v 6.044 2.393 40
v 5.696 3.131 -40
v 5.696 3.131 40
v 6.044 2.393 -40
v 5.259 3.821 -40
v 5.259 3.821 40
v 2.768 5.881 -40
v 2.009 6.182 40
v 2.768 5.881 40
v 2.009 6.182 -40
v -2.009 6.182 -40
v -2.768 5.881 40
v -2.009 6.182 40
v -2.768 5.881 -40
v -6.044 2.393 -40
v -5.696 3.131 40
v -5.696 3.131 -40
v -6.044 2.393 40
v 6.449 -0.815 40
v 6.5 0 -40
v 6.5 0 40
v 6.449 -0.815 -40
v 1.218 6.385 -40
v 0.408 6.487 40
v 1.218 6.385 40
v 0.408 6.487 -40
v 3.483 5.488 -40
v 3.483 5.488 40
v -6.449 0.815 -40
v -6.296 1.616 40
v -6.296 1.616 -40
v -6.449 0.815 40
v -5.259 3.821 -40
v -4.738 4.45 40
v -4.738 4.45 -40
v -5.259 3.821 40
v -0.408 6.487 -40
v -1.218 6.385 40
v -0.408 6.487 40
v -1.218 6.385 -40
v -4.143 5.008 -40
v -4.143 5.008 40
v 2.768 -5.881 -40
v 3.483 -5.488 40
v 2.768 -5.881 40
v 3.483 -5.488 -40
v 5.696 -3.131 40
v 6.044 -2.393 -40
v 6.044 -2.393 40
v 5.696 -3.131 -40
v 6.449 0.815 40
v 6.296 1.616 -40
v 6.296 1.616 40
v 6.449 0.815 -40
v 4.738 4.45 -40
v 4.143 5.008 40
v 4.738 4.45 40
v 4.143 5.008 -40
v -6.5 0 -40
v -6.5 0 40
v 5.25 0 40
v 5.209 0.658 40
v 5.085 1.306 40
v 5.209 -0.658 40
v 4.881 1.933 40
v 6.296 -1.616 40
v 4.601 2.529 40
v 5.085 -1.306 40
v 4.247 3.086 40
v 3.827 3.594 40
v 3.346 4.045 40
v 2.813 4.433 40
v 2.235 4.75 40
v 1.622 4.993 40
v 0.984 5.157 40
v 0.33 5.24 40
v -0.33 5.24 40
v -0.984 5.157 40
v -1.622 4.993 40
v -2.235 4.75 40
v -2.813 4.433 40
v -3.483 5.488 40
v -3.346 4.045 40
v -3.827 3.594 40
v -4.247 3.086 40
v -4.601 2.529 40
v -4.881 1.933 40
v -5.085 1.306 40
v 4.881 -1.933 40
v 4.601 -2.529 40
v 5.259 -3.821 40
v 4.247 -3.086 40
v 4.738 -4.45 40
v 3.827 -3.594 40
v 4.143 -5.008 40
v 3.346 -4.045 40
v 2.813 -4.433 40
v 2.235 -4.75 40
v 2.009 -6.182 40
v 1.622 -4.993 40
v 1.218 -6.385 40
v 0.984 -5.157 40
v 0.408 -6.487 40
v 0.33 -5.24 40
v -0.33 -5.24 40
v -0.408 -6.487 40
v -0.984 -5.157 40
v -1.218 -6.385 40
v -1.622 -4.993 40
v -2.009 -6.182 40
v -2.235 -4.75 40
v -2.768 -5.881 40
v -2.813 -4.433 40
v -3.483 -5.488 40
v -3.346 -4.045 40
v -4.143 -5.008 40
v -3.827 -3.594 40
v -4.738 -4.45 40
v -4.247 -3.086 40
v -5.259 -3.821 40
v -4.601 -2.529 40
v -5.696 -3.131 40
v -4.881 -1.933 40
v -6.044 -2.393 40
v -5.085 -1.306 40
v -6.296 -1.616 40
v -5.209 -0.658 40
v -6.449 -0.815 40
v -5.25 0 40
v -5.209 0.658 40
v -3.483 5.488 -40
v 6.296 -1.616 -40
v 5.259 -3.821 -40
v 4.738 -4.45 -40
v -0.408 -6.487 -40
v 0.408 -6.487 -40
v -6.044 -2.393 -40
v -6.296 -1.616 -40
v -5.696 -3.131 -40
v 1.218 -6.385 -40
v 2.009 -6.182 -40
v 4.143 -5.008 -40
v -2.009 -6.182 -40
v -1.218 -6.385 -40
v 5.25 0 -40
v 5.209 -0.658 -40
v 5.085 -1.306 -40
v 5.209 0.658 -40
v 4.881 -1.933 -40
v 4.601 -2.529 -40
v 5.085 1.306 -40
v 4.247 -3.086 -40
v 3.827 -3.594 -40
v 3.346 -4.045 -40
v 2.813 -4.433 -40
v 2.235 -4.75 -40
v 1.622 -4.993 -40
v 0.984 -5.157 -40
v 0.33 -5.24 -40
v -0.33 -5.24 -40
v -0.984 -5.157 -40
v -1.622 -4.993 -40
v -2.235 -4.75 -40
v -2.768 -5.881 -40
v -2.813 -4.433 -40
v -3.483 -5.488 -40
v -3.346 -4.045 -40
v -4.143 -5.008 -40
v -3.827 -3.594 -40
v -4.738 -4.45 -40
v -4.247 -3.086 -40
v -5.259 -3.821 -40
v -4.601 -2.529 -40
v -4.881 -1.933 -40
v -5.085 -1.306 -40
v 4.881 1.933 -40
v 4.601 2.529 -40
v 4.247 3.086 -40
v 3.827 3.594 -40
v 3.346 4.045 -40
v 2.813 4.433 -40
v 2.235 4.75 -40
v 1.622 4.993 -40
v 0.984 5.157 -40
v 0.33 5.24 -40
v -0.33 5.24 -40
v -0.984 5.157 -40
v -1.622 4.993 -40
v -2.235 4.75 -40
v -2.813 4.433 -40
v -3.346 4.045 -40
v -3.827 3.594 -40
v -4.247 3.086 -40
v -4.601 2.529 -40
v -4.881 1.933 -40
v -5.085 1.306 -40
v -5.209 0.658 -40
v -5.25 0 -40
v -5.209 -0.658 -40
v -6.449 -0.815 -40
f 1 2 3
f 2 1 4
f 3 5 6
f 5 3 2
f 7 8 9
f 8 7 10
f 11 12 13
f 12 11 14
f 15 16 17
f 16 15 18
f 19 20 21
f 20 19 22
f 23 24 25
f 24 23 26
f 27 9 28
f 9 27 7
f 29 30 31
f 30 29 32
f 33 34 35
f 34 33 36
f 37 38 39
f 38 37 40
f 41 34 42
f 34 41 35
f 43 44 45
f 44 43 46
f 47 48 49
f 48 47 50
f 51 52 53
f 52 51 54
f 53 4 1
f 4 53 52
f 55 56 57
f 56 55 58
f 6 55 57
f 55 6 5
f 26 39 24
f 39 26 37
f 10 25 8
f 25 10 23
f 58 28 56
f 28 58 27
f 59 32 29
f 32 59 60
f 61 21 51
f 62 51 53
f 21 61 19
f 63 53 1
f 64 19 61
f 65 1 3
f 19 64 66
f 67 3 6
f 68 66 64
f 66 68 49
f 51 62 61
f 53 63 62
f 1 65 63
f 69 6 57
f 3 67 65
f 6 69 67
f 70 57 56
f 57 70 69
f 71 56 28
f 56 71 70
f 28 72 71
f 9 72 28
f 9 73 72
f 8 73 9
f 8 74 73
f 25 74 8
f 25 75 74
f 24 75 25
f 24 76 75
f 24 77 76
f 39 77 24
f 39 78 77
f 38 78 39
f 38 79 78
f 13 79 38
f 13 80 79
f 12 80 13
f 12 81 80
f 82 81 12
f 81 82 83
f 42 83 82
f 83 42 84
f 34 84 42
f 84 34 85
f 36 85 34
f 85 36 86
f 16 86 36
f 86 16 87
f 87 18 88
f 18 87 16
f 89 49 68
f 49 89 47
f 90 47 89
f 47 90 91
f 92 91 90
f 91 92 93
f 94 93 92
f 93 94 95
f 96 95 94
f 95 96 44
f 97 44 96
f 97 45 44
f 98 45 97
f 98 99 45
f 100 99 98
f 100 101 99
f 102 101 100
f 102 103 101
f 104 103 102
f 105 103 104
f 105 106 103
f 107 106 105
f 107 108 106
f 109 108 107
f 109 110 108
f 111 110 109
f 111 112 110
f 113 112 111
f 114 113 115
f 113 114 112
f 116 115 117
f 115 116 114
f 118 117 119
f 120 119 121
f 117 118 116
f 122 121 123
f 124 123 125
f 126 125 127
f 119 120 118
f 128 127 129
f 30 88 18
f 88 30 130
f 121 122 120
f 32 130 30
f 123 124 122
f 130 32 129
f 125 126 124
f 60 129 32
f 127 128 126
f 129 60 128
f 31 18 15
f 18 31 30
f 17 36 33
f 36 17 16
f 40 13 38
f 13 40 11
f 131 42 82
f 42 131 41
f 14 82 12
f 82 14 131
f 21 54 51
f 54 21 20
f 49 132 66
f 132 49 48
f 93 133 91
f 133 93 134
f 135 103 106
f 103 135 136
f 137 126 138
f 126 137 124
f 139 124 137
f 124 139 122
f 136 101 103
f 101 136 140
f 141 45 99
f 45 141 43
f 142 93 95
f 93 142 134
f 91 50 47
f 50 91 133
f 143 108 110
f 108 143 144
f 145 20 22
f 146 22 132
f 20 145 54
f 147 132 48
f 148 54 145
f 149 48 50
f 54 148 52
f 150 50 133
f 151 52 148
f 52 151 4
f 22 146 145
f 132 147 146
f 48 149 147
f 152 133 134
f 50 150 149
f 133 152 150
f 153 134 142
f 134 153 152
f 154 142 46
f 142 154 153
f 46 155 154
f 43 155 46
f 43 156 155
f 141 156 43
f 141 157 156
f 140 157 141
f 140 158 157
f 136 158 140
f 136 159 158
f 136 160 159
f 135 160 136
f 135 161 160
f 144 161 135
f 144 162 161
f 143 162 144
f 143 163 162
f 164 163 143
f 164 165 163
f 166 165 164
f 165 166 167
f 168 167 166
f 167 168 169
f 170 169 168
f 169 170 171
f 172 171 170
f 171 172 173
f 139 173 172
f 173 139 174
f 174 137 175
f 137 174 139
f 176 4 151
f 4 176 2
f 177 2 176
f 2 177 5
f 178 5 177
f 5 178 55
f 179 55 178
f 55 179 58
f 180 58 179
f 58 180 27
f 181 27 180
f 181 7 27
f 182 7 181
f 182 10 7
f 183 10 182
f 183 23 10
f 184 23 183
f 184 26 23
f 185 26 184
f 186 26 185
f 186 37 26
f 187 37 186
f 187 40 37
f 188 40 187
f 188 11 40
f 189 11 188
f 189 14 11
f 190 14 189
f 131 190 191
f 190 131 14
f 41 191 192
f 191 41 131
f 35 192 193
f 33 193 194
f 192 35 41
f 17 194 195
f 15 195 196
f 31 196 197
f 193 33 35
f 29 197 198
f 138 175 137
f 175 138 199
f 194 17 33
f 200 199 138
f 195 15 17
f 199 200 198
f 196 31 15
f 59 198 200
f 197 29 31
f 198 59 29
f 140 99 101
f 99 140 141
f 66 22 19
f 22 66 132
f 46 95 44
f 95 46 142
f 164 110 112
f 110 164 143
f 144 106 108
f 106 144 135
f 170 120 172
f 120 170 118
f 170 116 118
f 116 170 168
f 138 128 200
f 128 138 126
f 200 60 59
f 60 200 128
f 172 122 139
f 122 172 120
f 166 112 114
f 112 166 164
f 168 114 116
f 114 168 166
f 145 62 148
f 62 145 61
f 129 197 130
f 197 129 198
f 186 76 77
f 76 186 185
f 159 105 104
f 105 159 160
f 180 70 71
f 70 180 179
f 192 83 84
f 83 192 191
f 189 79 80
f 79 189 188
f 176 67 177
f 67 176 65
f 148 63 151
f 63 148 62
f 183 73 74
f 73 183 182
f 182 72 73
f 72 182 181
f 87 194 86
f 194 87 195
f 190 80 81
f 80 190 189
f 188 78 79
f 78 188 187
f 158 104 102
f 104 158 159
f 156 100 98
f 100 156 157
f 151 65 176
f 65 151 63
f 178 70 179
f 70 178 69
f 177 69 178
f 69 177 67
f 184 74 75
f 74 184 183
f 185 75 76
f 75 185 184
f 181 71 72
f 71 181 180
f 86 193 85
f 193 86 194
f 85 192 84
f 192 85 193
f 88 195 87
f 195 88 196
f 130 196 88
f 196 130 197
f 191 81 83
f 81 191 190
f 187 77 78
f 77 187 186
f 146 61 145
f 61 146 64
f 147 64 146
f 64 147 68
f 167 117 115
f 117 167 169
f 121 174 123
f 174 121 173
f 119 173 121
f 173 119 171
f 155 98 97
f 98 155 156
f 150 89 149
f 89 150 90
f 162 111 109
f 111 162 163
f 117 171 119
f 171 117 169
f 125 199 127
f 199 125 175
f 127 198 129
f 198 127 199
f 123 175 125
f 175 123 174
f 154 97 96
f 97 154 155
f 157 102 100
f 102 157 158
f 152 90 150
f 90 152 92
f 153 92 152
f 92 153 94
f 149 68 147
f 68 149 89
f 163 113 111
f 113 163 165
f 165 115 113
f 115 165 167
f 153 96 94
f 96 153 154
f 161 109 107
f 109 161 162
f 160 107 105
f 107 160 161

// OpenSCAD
$fn = 50;


difference() {
	union() {
		translate(v = [0, 0, -40.0000000000]) {
			cylinder(h = 80, r = 6.5000000000);
		}
	}
	union() {
		translate(v = [0, 0, -100.0000000000]) {
			cylinder(h = 200, r = 5.2500000000);
		}
	}
}
